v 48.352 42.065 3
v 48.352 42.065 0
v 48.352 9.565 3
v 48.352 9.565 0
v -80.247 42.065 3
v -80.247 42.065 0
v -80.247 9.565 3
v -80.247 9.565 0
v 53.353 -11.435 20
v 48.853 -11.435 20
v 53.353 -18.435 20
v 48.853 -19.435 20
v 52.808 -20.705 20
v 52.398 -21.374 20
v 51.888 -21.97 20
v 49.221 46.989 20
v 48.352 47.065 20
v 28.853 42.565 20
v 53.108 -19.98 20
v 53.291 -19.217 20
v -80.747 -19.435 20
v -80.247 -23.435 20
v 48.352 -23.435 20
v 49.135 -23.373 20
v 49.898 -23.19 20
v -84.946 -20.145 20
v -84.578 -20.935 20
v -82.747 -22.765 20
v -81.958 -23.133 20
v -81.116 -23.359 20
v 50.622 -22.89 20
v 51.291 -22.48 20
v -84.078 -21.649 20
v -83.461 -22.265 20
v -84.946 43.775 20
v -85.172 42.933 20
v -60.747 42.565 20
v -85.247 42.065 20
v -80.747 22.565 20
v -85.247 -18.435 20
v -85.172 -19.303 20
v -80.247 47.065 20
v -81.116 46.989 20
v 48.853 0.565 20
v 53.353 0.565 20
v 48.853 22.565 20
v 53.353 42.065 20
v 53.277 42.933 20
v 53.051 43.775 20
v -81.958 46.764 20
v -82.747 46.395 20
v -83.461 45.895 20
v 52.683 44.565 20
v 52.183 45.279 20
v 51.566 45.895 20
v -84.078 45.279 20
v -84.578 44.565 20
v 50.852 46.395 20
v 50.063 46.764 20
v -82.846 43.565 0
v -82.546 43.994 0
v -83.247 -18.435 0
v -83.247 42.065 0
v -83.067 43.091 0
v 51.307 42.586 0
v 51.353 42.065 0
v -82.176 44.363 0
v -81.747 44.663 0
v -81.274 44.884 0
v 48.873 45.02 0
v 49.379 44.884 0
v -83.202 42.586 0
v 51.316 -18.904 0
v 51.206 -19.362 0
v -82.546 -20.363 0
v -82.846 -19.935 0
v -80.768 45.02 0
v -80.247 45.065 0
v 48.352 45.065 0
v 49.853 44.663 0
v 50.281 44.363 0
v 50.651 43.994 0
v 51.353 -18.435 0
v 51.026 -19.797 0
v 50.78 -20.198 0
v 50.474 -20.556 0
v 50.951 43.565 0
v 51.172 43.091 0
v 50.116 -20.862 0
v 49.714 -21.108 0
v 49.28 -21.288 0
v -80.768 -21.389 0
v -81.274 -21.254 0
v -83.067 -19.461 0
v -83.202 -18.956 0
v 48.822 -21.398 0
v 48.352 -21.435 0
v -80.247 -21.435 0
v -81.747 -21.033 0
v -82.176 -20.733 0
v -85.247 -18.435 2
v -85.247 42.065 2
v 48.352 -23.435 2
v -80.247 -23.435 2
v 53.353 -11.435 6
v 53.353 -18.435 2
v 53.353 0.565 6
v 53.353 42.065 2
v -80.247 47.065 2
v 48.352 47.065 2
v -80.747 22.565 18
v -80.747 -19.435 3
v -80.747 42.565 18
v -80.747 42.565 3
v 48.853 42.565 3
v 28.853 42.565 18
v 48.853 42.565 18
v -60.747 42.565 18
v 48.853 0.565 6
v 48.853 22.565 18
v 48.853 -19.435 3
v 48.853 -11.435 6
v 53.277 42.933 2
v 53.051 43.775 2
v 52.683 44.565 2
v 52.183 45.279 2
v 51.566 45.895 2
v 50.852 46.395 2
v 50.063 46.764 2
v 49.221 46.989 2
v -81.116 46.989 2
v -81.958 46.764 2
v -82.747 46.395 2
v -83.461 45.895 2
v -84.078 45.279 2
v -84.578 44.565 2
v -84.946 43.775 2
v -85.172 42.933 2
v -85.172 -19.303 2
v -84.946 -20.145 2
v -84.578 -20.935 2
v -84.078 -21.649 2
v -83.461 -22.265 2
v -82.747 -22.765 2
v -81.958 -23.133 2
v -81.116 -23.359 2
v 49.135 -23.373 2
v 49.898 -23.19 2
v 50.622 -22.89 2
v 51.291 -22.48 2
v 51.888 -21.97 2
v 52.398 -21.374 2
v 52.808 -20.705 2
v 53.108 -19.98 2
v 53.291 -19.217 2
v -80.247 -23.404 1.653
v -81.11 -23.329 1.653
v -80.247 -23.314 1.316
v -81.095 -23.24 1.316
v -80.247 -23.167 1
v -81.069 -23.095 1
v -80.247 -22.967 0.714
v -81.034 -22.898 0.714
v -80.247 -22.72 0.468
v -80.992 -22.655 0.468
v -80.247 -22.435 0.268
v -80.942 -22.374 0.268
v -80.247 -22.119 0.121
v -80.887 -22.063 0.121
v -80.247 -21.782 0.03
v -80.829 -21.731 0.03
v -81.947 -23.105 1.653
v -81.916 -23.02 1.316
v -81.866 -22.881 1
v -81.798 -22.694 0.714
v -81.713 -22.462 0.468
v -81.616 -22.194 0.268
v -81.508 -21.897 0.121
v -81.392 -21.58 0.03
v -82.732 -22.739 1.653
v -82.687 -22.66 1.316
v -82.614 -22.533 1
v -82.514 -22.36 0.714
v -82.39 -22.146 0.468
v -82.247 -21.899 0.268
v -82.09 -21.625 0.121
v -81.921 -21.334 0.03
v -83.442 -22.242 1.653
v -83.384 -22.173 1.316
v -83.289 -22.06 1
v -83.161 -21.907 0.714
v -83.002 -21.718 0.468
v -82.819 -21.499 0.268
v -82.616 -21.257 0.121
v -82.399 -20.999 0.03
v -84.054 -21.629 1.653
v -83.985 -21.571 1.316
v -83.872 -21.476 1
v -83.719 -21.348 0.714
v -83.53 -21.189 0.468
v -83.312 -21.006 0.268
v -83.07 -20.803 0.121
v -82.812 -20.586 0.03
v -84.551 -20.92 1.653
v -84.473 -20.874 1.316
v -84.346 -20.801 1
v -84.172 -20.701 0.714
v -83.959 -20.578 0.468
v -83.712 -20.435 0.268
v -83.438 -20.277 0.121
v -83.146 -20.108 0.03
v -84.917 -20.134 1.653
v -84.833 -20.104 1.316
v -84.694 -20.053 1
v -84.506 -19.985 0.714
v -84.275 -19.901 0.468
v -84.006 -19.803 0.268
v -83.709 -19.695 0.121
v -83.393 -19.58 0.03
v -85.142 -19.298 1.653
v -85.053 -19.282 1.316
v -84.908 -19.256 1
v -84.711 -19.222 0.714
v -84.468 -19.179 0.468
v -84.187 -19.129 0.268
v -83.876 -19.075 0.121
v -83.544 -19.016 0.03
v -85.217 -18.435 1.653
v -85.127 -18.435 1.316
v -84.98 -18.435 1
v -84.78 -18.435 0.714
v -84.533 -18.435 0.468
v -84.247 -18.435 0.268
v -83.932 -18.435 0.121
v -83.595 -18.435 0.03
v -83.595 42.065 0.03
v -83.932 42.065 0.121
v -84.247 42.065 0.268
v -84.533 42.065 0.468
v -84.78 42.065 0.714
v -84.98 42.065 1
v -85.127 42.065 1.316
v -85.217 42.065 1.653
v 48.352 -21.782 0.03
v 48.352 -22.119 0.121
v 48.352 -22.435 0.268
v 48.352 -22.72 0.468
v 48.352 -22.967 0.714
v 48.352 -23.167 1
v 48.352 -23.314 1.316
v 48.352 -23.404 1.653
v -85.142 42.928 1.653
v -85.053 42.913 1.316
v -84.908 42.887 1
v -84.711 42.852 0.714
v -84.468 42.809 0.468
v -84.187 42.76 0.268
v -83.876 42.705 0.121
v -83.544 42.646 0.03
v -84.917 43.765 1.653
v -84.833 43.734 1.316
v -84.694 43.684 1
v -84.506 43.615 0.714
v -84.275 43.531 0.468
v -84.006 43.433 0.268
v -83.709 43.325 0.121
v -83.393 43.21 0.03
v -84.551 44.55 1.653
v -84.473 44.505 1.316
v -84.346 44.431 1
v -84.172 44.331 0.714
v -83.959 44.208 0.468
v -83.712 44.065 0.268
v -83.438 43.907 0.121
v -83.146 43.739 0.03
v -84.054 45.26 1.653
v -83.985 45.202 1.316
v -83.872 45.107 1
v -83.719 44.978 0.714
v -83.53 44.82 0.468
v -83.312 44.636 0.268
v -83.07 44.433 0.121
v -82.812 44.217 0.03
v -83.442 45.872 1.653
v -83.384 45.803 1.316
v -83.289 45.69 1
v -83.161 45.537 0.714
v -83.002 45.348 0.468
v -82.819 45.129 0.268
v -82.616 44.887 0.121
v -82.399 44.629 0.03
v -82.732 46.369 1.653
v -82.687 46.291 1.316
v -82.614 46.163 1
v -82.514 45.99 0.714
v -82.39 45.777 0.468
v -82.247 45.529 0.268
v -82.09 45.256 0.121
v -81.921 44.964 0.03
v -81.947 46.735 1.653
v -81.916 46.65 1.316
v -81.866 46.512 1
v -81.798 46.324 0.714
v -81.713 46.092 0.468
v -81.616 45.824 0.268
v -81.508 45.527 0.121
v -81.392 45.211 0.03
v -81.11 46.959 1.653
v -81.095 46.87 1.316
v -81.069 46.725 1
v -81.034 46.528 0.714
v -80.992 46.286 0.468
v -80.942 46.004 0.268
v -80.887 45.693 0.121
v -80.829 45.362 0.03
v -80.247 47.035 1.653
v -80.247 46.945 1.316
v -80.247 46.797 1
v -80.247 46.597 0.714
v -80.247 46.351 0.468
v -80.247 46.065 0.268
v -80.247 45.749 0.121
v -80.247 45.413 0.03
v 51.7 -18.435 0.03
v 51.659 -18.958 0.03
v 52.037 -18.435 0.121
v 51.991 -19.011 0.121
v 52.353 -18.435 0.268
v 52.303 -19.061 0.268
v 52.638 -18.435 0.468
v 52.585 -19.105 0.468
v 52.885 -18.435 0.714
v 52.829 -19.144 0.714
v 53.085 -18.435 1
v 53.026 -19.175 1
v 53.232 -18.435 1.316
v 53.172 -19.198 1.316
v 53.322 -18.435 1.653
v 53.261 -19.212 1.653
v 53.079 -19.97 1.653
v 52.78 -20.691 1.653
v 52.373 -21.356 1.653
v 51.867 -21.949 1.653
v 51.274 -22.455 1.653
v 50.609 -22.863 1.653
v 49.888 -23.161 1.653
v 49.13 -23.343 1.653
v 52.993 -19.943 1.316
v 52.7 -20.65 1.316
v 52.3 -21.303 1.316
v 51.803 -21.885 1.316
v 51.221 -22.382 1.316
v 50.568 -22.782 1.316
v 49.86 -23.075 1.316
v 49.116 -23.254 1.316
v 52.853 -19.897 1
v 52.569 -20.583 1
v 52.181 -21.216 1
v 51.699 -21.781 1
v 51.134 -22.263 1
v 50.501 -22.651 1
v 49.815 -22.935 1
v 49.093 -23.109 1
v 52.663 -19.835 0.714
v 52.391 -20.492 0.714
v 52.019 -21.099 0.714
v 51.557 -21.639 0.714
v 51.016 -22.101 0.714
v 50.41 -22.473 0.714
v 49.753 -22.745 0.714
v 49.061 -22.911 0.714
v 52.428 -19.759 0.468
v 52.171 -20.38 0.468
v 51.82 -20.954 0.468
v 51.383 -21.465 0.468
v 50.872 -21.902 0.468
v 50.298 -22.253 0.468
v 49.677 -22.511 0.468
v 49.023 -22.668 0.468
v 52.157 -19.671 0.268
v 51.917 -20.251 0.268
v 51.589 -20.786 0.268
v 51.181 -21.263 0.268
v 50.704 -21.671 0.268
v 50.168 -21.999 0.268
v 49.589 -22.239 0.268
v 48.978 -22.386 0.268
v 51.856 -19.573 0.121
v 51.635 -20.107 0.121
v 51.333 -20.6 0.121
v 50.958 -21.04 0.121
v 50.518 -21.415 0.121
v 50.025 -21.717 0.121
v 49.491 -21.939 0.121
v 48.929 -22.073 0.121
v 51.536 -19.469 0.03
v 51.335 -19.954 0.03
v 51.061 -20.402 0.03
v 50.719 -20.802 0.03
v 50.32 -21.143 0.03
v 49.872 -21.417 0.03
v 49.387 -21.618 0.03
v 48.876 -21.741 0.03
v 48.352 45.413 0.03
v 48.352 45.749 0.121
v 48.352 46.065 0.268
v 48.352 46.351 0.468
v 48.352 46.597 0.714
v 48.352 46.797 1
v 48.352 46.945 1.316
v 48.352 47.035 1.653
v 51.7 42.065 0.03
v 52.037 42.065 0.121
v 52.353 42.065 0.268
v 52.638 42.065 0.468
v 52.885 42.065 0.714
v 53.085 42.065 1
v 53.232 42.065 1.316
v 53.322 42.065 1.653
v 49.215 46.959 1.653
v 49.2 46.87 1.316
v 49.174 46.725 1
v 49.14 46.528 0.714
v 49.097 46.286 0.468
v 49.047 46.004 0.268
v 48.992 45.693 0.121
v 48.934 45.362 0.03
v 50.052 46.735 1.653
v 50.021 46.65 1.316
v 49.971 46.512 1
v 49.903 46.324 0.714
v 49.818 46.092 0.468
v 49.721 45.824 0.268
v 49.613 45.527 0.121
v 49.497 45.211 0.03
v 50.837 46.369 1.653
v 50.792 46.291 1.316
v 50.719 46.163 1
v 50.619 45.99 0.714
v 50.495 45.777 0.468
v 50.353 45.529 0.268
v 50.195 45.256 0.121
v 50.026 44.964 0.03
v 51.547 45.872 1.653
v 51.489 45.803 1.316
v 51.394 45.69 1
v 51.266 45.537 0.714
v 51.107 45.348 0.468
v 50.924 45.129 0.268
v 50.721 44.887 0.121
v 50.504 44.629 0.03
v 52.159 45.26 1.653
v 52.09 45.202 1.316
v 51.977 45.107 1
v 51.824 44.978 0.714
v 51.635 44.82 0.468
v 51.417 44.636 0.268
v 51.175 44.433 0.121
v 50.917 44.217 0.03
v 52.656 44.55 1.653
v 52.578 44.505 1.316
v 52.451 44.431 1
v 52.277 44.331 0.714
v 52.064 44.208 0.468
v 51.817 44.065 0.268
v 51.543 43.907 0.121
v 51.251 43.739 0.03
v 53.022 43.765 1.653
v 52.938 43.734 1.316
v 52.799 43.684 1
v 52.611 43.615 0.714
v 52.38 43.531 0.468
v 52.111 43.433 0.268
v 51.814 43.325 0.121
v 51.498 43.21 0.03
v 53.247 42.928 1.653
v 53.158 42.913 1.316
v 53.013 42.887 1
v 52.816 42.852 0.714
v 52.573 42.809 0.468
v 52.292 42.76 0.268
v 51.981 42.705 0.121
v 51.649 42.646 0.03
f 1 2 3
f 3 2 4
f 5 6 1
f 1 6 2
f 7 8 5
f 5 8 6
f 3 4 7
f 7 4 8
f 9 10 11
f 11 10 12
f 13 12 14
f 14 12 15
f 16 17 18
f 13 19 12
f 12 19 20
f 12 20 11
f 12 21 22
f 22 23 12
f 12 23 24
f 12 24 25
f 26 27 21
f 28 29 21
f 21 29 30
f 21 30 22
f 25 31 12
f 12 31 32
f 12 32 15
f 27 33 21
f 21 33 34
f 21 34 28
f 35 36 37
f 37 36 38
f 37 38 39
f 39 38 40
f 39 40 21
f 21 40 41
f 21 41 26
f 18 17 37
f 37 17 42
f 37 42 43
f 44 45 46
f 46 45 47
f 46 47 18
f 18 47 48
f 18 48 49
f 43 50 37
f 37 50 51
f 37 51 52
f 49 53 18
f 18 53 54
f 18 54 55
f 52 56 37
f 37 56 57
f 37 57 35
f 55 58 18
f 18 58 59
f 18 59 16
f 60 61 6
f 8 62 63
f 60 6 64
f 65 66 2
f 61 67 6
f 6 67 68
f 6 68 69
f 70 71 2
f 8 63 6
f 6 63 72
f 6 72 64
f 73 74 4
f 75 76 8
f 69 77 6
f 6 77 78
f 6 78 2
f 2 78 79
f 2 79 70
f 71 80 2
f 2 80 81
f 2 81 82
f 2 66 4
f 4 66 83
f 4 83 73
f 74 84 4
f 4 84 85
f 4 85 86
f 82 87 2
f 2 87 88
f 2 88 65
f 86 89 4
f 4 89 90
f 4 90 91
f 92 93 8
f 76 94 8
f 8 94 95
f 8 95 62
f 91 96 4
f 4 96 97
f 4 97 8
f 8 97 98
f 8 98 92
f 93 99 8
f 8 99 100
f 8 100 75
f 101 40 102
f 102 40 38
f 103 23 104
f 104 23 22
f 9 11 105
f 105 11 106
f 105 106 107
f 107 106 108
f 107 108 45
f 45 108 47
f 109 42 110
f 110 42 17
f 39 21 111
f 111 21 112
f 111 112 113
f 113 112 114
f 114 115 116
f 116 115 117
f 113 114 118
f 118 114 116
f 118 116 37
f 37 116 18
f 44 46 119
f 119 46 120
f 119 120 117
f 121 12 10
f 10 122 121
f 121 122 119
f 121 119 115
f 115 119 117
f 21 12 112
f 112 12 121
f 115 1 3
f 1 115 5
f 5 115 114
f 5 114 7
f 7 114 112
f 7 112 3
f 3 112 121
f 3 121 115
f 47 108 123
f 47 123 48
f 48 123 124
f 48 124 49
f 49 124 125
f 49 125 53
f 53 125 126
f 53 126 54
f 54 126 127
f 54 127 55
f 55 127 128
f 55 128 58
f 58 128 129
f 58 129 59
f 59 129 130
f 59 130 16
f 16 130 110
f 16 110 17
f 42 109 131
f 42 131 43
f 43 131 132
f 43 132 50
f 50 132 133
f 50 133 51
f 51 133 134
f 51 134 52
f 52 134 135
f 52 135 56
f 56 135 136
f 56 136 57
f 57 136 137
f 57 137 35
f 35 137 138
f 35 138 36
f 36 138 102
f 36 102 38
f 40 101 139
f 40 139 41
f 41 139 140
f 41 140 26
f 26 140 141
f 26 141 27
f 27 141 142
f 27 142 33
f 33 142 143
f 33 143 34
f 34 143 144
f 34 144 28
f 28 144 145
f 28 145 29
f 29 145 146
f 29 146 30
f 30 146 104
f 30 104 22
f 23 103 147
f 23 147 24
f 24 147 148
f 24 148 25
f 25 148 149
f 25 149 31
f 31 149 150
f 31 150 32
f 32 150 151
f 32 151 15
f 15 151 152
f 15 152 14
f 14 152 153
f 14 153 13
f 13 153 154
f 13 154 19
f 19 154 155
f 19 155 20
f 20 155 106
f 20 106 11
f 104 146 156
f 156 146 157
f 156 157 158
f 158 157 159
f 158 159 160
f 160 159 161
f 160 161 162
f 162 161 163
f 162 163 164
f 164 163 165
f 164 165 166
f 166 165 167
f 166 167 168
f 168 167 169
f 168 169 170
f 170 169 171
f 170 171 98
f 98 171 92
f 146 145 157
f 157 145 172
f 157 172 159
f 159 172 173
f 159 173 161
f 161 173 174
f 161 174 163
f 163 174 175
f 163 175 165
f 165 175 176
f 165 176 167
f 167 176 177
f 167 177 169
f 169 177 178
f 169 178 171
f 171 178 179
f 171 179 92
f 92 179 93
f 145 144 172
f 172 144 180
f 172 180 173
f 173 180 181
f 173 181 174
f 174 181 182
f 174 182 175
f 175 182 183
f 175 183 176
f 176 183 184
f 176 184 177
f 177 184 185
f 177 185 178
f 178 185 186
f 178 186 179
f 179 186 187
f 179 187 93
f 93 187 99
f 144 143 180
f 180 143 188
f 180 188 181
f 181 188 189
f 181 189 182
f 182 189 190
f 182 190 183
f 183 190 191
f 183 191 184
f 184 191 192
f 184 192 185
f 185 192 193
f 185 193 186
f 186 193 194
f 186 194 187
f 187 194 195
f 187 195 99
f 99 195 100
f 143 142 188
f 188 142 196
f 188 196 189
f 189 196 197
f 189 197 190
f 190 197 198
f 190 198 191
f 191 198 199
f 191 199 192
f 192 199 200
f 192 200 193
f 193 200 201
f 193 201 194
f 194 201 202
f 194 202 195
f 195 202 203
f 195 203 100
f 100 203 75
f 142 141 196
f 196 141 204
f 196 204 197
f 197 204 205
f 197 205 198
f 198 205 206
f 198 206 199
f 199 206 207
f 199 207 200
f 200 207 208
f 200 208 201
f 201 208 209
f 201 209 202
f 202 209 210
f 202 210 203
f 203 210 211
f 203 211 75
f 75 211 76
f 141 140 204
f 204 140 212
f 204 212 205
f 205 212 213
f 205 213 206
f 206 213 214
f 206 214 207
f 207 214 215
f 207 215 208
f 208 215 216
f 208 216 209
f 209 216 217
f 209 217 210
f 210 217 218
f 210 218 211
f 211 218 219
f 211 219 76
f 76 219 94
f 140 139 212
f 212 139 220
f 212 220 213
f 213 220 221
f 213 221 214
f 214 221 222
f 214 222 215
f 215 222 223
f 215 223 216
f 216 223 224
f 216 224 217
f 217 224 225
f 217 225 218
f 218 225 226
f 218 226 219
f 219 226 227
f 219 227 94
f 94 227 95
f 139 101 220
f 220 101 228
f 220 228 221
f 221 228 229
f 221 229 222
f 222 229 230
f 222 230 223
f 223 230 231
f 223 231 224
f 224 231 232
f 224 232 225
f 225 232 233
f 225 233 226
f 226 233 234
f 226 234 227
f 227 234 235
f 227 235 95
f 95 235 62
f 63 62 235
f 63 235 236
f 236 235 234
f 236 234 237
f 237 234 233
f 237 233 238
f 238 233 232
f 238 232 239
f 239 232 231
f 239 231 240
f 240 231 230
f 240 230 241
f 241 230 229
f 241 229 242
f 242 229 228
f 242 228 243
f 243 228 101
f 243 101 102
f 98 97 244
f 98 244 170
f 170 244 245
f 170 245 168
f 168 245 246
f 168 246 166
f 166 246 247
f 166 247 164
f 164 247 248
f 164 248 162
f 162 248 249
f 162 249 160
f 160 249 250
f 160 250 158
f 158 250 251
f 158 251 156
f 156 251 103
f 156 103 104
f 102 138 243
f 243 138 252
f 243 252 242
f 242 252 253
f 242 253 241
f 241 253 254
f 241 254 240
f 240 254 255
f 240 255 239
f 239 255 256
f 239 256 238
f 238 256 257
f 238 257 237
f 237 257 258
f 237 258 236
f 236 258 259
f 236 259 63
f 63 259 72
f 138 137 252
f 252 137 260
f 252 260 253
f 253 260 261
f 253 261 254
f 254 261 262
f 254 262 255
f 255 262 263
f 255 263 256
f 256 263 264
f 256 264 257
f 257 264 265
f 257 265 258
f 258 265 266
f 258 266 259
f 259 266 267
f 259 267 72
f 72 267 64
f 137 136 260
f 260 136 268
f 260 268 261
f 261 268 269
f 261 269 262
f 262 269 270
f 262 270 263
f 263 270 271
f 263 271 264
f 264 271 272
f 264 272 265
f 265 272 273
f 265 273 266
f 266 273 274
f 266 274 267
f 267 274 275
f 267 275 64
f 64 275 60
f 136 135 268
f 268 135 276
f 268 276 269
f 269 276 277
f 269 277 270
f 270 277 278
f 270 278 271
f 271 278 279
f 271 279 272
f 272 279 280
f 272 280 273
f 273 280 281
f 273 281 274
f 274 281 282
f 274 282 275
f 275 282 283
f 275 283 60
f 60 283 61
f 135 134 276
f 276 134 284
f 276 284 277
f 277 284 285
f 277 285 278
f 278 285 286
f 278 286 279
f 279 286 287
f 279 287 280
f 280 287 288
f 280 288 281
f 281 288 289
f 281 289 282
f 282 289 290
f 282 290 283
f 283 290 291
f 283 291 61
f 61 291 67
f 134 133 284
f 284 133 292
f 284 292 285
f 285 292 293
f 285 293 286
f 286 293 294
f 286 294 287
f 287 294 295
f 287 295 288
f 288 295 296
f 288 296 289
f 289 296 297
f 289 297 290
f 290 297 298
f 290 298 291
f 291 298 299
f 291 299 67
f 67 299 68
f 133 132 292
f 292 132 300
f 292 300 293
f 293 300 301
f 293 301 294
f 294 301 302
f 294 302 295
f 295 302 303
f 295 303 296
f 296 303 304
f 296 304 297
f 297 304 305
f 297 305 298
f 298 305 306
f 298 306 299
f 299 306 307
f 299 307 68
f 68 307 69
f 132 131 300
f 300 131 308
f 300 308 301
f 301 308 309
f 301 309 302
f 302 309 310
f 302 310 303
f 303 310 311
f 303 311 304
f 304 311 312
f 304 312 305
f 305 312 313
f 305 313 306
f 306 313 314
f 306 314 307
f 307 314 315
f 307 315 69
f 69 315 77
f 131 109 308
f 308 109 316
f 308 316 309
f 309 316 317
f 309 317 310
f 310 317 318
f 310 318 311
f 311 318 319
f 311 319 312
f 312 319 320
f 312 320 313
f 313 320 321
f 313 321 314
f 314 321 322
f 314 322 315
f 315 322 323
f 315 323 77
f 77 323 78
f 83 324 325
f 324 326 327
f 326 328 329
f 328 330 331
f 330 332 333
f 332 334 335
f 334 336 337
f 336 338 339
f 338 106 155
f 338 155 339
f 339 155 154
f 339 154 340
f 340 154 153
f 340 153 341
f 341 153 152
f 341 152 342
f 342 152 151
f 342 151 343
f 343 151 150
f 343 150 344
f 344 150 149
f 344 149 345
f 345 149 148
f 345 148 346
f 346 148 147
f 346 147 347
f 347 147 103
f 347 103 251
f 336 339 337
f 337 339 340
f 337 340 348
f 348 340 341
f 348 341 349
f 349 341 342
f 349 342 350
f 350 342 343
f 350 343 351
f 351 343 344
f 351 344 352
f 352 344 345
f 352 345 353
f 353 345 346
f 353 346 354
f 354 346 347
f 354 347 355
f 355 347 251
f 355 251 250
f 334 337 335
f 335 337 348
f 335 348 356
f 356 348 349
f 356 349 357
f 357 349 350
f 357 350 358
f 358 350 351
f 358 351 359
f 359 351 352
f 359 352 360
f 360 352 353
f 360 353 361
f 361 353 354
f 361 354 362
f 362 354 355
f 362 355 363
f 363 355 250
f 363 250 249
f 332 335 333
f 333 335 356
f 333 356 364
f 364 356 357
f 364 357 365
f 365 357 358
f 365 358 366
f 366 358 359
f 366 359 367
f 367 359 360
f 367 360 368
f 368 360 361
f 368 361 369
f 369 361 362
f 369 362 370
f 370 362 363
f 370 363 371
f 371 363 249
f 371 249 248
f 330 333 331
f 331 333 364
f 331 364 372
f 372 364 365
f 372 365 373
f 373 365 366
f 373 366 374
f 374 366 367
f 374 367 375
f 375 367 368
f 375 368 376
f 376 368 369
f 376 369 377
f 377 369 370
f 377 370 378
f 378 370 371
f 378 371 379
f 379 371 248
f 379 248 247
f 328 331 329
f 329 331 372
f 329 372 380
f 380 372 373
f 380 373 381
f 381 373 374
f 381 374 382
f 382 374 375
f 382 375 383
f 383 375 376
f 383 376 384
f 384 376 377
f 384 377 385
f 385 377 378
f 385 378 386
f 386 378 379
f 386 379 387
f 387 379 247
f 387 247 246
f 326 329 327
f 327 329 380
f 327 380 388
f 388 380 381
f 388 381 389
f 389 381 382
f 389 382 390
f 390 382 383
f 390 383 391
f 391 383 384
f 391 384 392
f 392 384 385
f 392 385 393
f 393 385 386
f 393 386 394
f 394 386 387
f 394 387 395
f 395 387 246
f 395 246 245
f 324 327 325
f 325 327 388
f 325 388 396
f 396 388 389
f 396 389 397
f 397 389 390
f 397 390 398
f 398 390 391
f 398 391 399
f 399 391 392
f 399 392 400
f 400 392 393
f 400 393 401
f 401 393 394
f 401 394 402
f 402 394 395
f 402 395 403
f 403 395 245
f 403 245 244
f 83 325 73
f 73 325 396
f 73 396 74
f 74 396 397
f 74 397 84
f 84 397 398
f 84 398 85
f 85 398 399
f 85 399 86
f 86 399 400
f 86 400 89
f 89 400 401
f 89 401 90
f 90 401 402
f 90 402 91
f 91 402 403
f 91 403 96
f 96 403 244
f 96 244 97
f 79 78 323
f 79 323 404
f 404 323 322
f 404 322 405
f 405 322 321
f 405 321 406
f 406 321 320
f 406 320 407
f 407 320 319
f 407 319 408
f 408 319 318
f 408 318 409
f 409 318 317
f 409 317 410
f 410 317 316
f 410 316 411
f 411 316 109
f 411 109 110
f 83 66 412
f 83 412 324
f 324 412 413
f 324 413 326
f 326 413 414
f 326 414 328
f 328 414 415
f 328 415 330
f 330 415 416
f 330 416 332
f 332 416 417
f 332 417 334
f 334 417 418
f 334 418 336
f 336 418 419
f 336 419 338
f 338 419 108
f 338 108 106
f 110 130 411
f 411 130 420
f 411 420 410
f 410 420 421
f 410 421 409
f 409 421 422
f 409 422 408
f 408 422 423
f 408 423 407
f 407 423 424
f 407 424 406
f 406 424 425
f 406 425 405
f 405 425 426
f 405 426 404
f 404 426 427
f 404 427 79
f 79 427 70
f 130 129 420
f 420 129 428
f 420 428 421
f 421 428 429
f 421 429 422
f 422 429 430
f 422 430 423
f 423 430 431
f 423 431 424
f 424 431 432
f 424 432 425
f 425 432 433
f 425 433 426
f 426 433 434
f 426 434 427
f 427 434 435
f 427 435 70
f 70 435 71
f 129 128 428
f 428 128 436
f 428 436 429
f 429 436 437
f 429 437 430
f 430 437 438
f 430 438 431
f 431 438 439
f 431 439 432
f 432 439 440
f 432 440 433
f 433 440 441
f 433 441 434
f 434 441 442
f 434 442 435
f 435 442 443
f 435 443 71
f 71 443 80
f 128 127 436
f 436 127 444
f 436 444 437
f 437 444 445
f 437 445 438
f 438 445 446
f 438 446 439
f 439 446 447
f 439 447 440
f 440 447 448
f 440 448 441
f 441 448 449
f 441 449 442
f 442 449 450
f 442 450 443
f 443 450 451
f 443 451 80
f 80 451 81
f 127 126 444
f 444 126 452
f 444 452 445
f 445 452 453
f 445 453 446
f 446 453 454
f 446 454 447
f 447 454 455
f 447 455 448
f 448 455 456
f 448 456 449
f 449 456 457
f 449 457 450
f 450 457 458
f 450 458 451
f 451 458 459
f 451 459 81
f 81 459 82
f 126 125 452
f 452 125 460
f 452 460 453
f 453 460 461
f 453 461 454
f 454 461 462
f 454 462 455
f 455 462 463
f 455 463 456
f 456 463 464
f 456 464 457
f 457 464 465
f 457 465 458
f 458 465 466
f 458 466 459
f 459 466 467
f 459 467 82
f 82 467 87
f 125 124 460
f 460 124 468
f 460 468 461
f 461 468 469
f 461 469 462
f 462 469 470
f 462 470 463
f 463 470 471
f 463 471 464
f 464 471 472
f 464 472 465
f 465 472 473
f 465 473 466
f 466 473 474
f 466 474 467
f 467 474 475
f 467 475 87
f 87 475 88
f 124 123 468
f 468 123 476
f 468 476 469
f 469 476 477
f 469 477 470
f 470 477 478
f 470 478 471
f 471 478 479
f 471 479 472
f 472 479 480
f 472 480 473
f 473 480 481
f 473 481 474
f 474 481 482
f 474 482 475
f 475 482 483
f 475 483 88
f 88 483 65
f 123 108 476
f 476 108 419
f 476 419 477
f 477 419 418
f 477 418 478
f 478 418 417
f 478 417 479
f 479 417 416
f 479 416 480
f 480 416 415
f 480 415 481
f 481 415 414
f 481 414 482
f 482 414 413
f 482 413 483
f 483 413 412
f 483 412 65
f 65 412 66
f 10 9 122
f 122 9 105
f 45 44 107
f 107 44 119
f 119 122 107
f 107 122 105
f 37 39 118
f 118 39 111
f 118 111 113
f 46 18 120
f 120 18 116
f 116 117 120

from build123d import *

# Parameters (mm, degrees)
SKETCH1_W           = 138.6
SKETCH1_H           = 70.5
SKETCH1_W_2         = 128.6
SKETCH1_H_2         = 32.5
BOSS_EXTRUDE1_DEPTH = 20
SKETCH2_W           = 129.6
SKETCH2_H           = 62
CUT_EXTRUDE1_DEPTH  = 17
FILLET2_R           = 5
FILLET3_R           = 2
SKETCH3_W           = 4.5
SKETCH3_H           = 12
CUT_EXTRUDE2_DEPTH  = 14
BOSS_EXTRUDE2_DEPTH = 2


with BuildPart() as part:
    # Sketch1 → Boss-Extrude1 (new body)
    with BuildSketch(Plane.XY):
        with Locations((-15.947491639, 11.815217391)):
            Rectangle(SKETCH1_W, SKETCH1_H)
        with Locations((-15.947491639, 25.815217391)):
            Rectangle(SKETCH1_W_2, SKETCH1_H_2, mode=Mode.SUBTRACT)
    extrude(amount=BOSS_EXTRUDE1_DEPTH)

    # Sketch2 → Cut-Extrude1 (cut)
    with BuildSketch(Plane.XY.offset(20)):
        with Locations((-15.947491639, 11.565217391)):
            Rectangle(SKETCH2_W, SKETCH2_H)
    extrude(amount=-CUT_EXTRUDE1_DEPTH, mode=Mode.SUBTRACT)

    # Fillet2
    fillet2_edges = [part.edges().sort_by_distance(p)[0] for p in [
        (-85.247491639, 47.065217391, 10),
        (53.352508361, 47.065217391, 10),
        (53.352508361, -23.434782609, 10),
        (-85.247491639, -23.434782609, 10),
    ]]
    fillet(fillet2_edges, radius=FILLET2_R)

    # Fillet3
    fillet3_edges = [part.edges().sort_by_distance(p)[0] for p in [
        (-15.947491639, 47.065217391, 0),
        (-85.247491639, 11.815217391, 0),
        (53.352508361, 11.815217391, 0),
        (-15.947491639, -23.434782609, 0),
        (51.888042267, -21.970316515, 0),
        (-83.783025545, -21.970316515, 0),
        (-83.783025545, 45.600751297, 0),
        (51.888042267, 45.600751297, 0),
    ]]
    fillet(fillet3_edges, radius=FILLET3_R)

    # Sketch3 → Cut-Extrude2 (cut)
    with BuildSketch(Plane.XY.offset(20)):
        with Locations((51.102508361, -5.434782609)):
            Rectangle(SKETCH3_W, SKETCH3_H)
    extrude(amount=-CUT_EXTRUDE2_DEPTH, mode=Mode.SUBTRACT)

    # Sketch4 → Boss-Extrude2 (add)
    with BuildSketch(Plane.XY.offset(20)):
        Polygon((-60.747491639, 42.565217391), (-80.747491639, 22.565217391), (-80.747491639, 42.565217391), align=None)
        Polygon((48.852508361, 22.565217391), (48.852508361, 42.565217391), (28.852508361, 42.565217391), align=None)
    extrude(amount=-BOSS_EXTRUDE2_DEPTH)


solid = part.part
